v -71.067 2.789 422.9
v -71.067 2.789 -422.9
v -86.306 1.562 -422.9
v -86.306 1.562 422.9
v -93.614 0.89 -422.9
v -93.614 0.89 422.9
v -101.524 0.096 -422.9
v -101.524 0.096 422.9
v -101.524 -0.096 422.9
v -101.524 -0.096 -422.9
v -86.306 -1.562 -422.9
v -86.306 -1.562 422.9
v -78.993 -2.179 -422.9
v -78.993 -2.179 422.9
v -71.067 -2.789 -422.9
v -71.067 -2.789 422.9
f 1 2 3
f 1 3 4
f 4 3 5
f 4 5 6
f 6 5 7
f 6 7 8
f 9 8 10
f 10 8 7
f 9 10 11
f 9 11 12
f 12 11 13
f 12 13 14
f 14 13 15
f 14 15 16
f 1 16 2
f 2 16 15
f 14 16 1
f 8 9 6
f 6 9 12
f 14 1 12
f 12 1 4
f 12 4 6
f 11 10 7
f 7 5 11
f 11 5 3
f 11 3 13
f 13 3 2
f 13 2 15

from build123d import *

# Parameters (mm, degrees)
BOSS_EXTRUDE1_DEPTH = 422.9


with BuildPart() as part:
    # Sketch1 → Boss-Extrude1 (new, symmetric)
    with BuildSketch(Plane.XY):
        with BuildLine():
            Line((-71.0668, 2.788978681), (-71.0668, -2.788978681))
            add(Edge.make_bspline(
                [(-71.0668, -2.788978681), (-71.180789757, -2.780935505), (-72.873449735, -2.661500548), (-76.05100549, -2.415421445), (-80.490955936, -2.060949656), (-84.605020273, -1.712894337), (-88.348332728, -1.382028712), (-91.679826547, -1.075243647), (-94.563013415, -0.800090686), (-96.966306351, -0.56354481), (-98.86338481, -0.372017598), (-100.233471889, -0.23093643), (-101.061573115, -0.144551224), (-101.431307465, -0.105684166), (-101.524, -0.09594018)],
                knots=[0, 0, 0, 0, 0.011211572, 0.166483201, 0.31268616, 0.448210553, 0.571562716, 0.681381362, 0.776452467, 0.855722863, 0.918312437, 0.963524724, 0.990855635, 1, 1, 1, 1], degree=3))
            Line((-101.524, -0.09594018), (-101.524, 0.09594018))
            add(Edge.make_bspline(
                [(-71.0668, 2.788978681), (-71.180789757, 2.780935505), (-72.873449735, 2.661500548), (-76.05100549, 2.415421445), (-80.490955936, 2.060949656), (-84.605020273, 1.712894337), (-88.348332728, 1.382028712), (-91.679826547, 1.075243647), (-94.563013415, 0.800090686), (-96.966306351, 0.56354481), (-98.86338481, 0.372017598), (-100.233471889, 0.23093643), (-101.061573115, 0.144551224), (-101.431307465, 0.105684166), (-101.524, 0.09594018)],
                knots=[0, 0, 0, 0, 0.011211572, 0.166483201, 0.31268616, 0.448210553, 0.571562716, 0.681381362, 0.776452467, 0.855722863, 0.918312437, 0.963524724, 0.990855635, 1, 1, 1, 1], degree=3))
        make_face()
    extrude(amount=BOSS_EXTRUDE1_DEPTH, both=True)


solid = part.part
